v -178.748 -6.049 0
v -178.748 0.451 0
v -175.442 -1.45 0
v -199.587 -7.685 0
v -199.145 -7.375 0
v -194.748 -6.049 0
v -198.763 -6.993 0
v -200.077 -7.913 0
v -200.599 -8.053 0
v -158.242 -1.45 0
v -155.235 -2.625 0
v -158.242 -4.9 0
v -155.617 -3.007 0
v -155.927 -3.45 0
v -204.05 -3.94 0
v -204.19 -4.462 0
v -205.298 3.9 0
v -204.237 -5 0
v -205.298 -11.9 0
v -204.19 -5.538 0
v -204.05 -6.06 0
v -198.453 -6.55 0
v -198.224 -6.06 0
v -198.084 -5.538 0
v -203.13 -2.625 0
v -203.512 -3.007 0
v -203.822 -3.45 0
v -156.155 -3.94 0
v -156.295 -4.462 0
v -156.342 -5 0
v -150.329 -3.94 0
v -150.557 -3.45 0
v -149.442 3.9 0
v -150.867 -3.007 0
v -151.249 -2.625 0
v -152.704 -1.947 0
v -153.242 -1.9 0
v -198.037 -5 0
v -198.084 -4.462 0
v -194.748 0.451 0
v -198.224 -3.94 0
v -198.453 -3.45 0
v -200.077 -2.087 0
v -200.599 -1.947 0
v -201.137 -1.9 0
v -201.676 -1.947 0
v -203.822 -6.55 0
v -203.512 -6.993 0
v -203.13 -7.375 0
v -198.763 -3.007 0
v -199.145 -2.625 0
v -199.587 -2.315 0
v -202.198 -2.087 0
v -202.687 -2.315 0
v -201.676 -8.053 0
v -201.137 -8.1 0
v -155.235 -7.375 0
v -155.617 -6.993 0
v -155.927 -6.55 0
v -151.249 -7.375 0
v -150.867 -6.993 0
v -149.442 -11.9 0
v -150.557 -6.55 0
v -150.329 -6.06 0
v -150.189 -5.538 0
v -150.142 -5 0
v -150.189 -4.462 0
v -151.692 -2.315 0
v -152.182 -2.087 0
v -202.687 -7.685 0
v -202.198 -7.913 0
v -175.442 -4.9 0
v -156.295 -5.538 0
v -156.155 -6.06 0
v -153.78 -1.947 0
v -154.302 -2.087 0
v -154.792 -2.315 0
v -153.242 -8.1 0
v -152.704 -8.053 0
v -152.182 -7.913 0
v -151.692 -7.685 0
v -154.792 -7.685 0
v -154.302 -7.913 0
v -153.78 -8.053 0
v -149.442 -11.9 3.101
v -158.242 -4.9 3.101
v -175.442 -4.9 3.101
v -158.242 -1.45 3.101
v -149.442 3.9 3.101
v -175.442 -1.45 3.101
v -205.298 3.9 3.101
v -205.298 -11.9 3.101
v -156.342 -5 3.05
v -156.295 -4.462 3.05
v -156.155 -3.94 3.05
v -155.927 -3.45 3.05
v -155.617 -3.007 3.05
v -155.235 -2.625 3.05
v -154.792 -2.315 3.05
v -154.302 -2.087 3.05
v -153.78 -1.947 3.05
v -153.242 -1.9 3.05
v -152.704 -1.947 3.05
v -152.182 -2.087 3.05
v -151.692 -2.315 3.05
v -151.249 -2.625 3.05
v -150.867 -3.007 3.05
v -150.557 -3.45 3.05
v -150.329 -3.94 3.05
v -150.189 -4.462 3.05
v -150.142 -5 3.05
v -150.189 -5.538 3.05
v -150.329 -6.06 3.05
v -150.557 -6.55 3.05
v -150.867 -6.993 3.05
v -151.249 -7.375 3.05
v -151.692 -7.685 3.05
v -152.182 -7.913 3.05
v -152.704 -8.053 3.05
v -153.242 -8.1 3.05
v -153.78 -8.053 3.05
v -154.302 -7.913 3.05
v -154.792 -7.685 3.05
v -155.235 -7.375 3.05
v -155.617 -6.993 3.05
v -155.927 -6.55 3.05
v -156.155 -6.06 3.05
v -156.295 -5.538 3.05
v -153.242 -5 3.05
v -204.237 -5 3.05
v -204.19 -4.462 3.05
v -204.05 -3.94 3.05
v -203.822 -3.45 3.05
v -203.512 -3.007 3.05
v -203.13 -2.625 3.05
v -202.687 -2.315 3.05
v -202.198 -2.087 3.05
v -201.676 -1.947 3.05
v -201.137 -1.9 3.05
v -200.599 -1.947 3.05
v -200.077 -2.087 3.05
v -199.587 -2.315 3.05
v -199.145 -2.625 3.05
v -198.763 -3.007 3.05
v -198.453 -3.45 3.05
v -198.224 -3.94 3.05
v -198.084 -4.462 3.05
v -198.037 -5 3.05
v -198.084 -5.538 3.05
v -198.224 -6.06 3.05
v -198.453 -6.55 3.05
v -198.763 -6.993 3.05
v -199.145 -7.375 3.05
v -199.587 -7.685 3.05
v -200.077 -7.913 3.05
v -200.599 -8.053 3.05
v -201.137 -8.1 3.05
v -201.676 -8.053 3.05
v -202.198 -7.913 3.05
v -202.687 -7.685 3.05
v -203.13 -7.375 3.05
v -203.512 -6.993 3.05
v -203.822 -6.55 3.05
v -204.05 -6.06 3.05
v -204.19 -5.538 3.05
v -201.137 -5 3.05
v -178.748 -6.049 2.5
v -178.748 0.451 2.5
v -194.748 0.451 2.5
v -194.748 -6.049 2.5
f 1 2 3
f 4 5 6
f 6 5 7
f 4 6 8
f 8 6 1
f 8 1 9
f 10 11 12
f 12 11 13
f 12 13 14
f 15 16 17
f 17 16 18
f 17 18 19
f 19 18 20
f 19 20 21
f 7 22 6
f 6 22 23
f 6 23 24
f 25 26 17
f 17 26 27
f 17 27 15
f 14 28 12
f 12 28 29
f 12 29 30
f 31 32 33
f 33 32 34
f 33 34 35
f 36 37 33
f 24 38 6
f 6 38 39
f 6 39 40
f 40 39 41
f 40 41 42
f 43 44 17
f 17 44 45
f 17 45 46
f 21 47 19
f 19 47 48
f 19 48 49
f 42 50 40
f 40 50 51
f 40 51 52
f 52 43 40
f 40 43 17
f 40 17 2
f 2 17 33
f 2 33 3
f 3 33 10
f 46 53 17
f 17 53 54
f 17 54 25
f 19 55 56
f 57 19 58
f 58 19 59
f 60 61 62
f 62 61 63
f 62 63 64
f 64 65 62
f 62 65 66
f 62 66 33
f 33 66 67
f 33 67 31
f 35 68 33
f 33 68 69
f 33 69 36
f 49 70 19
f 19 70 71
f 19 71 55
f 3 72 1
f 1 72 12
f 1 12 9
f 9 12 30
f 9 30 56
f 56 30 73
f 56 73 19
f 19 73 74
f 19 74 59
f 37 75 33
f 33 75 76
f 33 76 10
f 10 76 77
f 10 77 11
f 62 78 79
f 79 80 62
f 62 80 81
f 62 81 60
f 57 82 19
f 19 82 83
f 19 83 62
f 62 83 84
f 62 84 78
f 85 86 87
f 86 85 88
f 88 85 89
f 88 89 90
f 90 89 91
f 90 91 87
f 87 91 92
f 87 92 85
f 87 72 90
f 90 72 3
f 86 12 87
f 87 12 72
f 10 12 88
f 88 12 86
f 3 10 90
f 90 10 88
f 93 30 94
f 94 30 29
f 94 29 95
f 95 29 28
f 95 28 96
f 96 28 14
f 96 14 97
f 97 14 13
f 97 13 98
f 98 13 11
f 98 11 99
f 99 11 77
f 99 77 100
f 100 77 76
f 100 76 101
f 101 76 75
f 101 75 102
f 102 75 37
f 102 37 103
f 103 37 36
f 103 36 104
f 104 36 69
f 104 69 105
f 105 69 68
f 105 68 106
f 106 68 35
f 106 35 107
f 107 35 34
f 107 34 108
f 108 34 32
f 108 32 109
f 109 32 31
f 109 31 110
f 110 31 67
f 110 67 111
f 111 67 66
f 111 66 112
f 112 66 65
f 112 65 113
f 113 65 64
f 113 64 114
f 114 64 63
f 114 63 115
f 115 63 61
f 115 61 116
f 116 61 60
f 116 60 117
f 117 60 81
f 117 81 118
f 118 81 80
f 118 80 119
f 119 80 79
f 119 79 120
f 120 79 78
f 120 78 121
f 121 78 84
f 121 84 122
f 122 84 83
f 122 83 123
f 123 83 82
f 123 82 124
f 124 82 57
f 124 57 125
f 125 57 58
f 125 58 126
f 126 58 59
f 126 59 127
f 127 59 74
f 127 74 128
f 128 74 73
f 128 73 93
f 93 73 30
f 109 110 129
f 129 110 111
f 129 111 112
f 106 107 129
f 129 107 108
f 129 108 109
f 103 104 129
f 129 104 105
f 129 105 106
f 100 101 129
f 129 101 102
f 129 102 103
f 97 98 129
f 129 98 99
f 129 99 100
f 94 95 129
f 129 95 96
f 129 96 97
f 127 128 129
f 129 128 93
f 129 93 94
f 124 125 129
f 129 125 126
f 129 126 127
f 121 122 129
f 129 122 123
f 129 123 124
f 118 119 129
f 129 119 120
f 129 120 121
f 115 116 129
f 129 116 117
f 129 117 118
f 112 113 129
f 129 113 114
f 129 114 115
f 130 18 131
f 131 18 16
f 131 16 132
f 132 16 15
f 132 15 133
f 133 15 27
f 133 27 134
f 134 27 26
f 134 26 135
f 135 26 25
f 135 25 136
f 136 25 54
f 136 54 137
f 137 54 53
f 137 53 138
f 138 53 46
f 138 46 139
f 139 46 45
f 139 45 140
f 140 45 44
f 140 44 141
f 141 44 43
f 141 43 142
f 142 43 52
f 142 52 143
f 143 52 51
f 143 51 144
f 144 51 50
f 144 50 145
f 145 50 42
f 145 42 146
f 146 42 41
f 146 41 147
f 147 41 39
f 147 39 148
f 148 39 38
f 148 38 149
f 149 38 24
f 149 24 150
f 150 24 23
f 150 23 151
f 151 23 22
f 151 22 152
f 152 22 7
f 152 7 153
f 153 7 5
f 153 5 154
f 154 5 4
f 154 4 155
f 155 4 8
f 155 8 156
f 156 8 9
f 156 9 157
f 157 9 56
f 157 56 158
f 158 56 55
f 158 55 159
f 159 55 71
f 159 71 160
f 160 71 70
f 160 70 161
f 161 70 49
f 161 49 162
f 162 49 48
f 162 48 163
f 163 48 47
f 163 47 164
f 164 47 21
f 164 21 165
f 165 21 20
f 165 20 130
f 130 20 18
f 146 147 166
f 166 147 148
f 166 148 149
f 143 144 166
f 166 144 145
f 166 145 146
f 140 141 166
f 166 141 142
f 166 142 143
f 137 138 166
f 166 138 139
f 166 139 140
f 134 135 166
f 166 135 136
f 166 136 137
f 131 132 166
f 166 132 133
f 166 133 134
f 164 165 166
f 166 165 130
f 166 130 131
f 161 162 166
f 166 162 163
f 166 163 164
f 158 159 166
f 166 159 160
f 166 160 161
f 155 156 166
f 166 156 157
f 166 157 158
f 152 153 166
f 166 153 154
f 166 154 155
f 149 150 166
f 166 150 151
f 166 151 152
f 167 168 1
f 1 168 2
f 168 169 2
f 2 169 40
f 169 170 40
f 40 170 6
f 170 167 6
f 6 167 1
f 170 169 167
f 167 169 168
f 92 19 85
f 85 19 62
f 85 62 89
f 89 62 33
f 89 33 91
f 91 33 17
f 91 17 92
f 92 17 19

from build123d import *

# Parameters (mm, degrees)
SKETCH1_W           = 56.256588963
SKETCH1_H           = 16
SKETCH1_R           = 3.1
SKETCH1_W_2         = 17.2
SKETCH1_H_2         = 3.45
SKETCH1_W_3         = 16
SKETCH1_H_3         = 6.5
BOSS_EXTRUDE1_DEPTH = 3.100997352
SKETCH1_3_R         = 3.1
CUT_EXTRUDE1_DEPTH  = 3.05
SKETCH1_4_W         = 16
SKETCH1_4_H         = 6.5
CUT_EXTRUDE2_DEPTH  = 2.5
SKETCH2_W           = 56.256588963
SKETCH2_H           = 16
SKETCH2_W_2         = 55.856588963
SKETCH2_H_2         = 15.8
CUT_EXTRUDE3_DEPTH  = 3.100997352


with BuildPart() as part:
    # Sketch1 → Boss-Extrude1 (new body)
    # profile 1 of 4: a face of its own
    with BuildSketch(Plane.XY):
        with Locations((-177.370194481, -4)):
            Rectangle(SKETCH1_W, SKETCH1_H)
        with Locations((-153.2419, -5)):
            Circle(SKETCH1_R, mode=Mode.SUBTRACT)
        with Locations((-201.137394481, -5)):
            Circle(SKETCH1_R, mode=Mode.SUBTRACT)
        with Locations((-166.8419, -3.175)):
            Rectangle(SKETCH1_W_2, SKETCH1_H_2, mode=Mode.SUBTRACT)
        with Locations((-186.748488963, -2.799282455)):
            Rectangle(SKETCH1_W_3, SKETCH1_H_3, mode=Mode.SUBTRACT)
    # profile 2 of 4: a face of its own
    with BuildSketch(Plane.XY):
        with Locations((-153.2419, -5)):
            Circle(SKETCH1_R)
    # profile 3 of 4: a face of its own
    with BuildSketch(Plane.XY):
        with Locations((-201.137394481, -5)):
            Circle(SKETCH1_R)
    # profile 4 of 4: a face of its own
    with BuildSketch(Plane.XY):
        with Locations((-186.748488963, -2.799282455)):
            Rectangle(SKETCH1_W_3, SKETCH1_H_3)
    extrude(amount=BOSS_EXTRUDE1_DEPTH)

    # Sketch1<3> → Cut-Extrude1 (cut)
    with BuildSketch(Plane.XY):
        with Locations((-201.137394481, -5)):
            Circle(SKETCH1_3_R)
        with Locations((-153.2419, -5)):
            Circle(SKETCH1_3_R)
    extrude(amount=CUT_EXTRUDE1_DEPTH, mode=Mode.SUBTRACT)

    # Sketch1<4> → Cut-Extrude2 (cut)
    with BuildSketch(Plane.XY):
        with Locations((-186.748488963, -2.799282455)):
            Rectangle(SKETCH1_4_W, SKETCH1_4_H)
    extrude(amount=CUT_EXTRUDE2_DEPTH, mode=Mode.SUBTRACT)

    # Sketch2 → Cut-Extrude3 (cut)
    with BuildSketch(Plane.XY.offset(3.100997352)):
        with Locations((-177.370194481, -4)):
            Rectangle(SKETCH2_W, SKETCH2_H)
        with Locations((-177.370194481, -4)):
            Rectangle(SKETCH2_W_2, SKETCH2_H_2, mode=Mode.SUBTRACT)
    extrude(amount=-CUT_EXTRUDE3_DEPTH, mode=Mode.SUBTRACT)


solid = part.part
